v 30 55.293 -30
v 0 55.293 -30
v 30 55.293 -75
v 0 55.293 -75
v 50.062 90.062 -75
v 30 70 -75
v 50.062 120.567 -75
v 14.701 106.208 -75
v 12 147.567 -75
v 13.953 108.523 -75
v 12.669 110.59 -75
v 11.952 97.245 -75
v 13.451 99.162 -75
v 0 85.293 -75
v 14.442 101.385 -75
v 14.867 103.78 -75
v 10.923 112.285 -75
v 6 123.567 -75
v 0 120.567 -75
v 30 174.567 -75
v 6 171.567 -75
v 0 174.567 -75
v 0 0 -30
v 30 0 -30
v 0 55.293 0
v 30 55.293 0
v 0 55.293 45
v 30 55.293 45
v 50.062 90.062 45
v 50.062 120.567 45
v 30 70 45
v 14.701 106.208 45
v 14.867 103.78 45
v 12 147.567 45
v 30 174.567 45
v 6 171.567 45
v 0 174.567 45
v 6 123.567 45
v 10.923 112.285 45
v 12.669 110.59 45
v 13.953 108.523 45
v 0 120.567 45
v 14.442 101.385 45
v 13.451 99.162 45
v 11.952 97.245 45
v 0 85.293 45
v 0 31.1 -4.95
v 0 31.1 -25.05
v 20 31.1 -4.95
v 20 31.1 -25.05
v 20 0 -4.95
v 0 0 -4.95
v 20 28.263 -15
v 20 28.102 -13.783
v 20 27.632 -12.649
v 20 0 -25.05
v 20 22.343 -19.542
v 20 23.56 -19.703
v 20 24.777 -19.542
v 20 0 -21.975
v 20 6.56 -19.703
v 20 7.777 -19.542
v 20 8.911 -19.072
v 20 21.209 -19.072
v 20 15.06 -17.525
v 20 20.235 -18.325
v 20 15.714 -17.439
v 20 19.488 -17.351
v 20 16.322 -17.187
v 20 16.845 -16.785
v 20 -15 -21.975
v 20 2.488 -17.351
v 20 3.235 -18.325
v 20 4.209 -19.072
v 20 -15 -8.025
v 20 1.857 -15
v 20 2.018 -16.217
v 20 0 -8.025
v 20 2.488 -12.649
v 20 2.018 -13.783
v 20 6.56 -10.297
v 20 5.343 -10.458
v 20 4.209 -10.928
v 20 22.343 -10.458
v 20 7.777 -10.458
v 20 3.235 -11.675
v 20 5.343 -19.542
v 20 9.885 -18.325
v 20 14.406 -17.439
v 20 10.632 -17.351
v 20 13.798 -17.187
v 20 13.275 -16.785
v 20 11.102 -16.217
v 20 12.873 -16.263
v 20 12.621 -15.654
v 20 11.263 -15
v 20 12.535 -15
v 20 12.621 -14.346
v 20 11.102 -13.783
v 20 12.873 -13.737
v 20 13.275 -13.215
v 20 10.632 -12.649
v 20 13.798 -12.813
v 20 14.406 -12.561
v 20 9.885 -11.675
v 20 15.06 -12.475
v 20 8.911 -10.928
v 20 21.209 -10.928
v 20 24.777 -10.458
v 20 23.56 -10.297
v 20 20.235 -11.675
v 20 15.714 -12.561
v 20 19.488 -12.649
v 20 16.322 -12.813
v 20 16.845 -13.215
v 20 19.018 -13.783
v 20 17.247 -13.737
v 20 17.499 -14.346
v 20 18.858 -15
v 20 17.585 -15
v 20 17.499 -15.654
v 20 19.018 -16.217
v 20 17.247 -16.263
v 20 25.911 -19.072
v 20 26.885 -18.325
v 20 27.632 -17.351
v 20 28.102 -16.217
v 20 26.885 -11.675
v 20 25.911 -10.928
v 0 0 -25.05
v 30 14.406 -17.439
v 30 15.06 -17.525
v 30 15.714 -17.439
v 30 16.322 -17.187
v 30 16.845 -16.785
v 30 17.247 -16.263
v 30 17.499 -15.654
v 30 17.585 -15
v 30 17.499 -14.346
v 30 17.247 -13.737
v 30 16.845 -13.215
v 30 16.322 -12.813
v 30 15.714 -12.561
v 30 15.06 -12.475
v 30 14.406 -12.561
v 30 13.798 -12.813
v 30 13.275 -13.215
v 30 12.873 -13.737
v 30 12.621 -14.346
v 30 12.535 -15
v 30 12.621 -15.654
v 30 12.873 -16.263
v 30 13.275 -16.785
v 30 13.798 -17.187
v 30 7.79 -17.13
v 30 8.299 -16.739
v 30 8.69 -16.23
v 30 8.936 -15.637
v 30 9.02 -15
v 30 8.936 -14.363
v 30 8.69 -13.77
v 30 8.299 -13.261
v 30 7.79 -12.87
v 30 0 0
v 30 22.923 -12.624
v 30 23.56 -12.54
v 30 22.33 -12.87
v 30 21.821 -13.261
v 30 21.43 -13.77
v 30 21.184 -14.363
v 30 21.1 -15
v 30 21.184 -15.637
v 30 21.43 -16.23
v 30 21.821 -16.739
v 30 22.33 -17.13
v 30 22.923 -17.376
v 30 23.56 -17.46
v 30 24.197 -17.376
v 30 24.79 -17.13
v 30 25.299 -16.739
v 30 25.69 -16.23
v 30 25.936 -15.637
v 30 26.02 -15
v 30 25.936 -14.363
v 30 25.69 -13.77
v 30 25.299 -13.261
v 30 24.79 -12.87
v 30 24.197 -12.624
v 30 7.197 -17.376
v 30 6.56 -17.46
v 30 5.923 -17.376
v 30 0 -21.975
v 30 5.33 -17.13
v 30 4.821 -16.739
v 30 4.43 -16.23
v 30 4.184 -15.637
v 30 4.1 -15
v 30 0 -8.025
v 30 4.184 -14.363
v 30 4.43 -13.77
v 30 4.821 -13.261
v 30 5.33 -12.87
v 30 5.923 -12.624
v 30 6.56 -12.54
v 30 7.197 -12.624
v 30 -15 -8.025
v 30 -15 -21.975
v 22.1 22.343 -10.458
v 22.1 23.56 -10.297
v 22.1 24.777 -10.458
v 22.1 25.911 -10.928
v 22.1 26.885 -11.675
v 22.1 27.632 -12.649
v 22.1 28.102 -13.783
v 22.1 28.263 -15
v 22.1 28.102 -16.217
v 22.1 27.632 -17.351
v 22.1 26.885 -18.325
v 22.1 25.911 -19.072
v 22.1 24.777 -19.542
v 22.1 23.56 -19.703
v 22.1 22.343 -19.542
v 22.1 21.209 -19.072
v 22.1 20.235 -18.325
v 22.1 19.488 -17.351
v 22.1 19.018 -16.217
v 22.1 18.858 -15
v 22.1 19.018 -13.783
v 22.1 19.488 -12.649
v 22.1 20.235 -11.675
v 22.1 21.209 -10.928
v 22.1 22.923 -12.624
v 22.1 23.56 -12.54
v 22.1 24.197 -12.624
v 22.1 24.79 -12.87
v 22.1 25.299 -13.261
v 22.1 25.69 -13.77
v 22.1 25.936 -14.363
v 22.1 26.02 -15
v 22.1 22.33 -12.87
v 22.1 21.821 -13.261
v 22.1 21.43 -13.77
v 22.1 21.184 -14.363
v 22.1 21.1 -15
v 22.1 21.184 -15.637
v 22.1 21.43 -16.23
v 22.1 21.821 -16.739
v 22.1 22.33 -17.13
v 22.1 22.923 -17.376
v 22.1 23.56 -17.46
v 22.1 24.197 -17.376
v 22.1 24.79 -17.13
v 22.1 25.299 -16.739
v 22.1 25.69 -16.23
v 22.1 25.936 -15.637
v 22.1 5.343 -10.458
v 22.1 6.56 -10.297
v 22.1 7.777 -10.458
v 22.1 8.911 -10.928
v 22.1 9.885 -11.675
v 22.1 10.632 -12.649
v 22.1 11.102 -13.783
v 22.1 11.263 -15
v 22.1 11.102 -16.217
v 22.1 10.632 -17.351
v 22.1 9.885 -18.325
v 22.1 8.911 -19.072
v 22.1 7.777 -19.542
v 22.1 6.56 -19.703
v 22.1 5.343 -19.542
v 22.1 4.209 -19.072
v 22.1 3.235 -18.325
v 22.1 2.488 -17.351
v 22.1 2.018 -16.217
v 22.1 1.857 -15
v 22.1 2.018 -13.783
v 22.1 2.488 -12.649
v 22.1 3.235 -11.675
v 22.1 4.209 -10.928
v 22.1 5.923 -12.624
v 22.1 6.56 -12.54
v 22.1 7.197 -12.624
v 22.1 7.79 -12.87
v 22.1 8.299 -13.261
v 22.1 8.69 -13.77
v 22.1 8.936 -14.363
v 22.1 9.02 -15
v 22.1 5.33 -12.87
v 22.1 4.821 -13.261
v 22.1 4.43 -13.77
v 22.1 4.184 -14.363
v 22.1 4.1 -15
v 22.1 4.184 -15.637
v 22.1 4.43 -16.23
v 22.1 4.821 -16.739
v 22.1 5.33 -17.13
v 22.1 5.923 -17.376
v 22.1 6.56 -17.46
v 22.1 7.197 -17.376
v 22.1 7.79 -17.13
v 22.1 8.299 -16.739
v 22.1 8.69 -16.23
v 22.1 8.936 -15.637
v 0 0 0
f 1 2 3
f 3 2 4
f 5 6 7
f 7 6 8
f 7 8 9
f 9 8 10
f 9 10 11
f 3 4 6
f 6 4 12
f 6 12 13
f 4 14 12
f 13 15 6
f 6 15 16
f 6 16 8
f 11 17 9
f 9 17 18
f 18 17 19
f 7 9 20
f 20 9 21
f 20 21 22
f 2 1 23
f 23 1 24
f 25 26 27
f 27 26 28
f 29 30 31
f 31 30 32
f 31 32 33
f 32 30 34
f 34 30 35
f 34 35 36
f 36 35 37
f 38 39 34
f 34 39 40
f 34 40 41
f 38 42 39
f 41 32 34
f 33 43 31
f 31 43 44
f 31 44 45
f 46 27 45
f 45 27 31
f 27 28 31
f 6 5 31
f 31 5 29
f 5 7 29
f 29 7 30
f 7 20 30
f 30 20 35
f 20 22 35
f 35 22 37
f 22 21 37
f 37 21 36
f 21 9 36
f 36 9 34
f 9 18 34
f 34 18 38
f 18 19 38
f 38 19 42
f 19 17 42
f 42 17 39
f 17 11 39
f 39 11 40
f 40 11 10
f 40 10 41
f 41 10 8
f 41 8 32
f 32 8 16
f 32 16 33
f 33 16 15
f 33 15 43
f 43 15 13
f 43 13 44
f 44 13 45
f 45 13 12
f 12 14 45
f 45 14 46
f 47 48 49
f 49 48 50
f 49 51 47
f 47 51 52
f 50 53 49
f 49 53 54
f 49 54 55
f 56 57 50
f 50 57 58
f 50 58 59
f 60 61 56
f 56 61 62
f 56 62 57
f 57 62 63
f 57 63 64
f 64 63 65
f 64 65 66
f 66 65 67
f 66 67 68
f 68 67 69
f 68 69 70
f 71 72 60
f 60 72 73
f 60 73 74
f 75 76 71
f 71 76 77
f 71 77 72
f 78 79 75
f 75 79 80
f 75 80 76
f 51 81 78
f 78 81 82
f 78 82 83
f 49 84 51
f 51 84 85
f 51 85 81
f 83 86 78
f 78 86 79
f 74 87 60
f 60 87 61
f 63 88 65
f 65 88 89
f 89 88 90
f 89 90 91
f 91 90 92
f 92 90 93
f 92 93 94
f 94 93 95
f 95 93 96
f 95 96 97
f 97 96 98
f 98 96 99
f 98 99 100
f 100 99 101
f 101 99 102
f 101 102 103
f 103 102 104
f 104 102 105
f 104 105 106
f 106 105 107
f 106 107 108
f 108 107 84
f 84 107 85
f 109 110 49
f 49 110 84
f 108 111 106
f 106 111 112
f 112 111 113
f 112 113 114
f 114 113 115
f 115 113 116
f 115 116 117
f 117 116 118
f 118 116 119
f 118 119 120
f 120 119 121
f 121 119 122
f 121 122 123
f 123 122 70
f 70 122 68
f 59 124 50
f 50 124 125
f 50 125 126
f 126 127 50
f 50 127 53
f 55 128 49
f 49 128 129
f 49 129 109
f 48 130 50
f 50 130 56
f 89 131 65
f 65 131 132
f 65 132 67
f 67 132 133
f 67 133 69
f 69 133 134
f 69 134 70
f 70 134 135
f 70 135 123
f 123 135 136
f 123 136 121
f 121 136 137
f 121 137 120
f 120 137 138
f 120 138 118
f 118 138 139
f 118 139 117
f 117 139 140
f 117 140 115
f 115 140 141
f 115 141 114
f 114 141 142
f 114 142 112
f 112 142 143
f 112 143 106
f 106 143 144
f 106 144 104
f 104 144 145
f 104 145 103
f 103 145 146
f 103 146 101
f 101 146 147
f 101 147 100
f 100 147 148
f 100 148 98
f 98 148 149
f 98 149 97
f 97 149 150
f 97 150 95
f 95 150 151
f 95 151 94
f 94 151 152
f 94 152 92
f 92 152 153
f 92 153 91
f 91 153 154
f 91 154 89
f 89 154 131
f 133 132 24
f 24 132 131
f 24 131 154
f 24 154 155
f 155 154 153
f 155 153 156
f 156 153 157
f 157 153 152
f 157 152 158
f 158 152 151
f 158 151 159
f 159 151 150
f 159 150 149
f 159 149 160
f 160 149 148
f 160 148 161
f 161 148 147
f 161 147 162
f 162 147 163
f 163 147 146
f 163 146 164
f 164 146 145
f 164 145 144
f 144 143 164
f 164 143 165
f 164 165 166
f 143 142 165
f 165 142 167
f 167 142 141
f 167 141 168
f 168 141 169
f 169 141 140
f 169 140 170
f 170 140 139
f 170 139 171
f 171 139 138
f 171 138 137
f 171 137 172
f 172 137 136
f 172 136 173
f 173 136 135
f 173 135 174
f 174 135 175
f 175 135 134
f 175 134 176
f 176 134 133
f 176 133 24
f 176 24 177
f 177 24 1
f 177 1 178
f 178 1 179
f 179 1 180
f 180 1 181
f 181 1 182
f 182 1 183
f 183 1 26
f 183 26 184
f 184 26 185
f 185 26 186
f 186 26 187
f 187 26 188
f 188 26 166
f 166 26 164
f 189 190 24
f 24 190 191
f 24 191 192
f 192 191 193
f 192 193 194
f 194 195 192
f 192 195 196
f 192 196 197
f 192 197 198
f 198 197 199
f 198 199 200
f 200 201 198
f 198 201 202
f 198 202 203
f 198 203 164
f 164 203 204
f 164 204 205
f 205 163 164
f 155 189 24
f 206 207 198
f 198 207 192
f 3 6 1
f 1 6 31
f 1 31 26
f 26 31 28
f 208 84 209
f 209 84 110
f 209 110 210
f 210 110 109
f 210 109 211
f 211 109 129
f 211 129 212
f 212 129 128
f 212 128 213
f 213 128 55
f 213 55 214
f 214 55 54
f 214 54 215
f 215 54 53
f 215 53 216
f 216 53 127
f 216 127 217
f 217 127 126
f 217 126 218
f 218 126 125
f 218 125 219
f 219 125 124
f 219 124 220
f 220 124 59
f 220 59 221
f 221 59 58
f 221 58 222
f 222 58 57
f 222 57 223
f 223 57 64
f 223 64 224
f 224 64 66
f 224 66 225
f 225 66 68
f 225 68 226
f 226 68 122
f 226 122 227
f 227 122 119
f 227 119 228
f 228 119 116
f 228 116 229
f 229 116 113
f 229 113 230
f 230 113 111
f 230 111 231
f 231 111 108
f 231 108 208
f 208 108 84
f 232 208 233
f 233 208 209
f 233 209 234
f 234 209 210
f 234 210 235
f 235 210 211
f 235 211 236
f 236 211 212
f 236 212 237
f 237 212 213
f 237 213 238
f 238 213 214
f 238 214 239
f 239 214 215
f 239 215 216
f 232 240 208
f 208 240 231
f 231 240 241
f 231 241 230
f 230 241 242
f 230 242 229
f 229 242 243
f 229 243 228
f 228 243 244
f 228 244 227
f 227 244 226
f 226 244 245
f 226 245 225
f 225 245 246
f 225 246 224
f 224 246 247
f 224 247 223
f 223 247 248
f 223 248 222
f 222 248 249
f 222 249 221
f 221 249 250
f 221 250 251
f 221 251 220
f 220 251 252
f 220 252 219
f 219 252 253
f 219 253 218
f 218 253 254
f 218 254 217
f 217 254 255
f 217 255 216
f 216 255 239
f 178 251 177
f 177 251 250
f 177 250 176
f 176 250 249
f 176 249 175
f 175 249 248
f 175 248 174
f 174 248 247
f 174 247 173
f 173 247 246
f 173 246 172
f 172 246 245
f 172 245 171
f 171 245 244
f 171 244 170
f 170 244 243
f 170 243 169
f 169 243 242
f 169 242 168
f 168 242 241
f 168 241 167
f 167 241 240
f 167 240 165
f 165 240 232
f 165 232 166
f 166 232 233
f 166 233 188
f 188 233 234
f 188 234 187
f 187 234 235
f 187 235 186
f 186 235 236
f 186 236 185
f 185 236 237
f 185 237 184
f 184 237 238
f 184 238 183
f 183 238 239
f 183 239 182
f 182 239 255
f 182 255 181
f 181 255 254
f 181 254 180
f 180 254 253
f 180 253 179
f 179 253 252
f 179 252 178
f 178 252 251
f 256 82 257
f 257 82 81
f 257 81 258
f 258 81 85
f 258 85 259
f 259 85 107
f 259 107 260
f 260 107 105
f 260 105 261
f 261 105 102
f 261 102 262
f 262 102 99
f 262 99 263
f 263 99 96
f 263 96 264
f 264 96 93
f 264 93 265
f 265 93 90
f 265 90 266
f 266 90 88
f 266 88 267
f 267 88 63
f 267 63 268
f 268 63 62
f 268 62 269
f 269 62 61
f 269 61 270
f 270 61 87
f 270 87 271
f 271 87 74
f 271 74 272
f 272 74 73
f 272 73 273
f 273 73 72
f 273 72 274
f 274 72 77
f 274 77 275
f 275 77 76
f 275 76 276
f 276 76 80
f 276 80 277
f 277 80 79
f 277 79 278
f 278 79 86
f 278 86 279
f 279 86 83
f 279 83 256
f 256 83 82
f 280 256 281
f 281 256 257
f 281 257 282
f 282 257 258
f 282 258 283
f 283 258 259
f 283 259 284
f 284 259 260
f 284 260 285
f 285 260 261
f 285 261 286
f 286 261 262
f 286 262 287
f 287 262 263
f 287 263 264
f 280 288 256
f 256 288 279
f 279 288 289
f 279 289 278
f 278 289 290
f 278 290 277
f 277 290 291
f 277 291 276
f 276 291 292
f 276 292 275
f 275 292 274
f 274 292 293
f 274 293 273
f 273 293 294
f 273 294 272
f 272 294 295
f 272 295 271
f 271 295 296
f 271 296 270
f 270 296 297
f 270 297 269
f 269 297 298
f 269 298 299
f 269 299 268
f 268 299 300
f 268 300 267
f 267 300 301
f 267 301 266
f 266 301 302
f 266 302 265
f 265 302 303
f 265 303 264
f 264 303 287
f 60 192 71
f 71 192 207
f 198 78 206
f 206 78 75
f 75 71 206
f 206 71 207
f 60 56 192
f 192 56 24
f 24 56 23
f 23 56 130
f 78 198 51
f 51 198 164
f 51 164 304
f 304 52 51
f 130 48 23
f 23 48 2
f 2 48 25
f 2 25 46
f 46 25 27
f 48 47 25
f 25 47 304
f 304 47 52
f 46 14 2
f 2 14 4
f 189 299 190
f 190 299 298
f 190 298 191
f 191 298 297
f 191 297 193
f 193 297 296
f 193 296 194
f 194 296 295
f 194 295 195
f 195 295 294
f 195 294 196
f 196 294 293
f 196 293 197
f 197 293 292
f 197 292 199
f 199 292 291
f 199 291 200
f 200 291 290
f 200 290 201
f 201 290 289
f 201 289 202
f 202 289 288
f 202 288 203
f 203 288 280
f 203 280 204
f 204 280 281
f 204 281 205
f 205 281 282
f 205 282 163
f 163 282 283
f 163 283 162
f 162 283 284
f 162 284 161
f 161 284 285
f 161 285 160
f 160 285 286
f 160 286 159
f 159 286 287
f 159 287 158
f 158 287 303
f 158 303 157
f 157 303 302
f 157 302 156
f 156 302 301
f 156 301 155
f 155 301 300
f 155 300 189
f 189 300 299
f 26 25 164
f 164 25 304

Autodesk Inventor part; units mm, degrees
ref_plane "YZ Plane" through (0, 0, 0) normal (1, 0, 0) x (0, 1, 0)
ref_plane "XZ Plane" through (0, 0, 0) normal (0, 1, 0) x (-1, 0, 0)
sketch "Sketch1" plane through (0, 0, 0) normal (0, 0, 1) x (1, 0, 0)
  line L0 (0, 0) -> (25, 0)
  line L1 (25, 0) -> (25, 40)
  line L2 (25, 40) -> (0, 40)
  line L3 (0, 40) -> (0, 0)
  dimension "d1" = 25
  dimension "d2" = 40
  dimension "d3" = 25
extrude "Extrusion1" add sketch "Sketch1" against normal blind 30
sketch "Sketch2" plane through (25, 0, 0) normal (1, 0, 0) x (0, 0, -1)
  line L0 (0, 0) -> (30, 0) projected
  circle A0 centre (15, 6.56) radius 2.46
extrude "Extrusion2" cut sketch "Sketch2" against normal blind 30
sketch "Sketch3" plane through (0, 0, 0) normal (-1, 0, 0) x (0, 0, 1)
  line L0 (0, 0) -> (-30, 0) projected
  line L1 (-25.05, 0) -> (-4.95, 0)
  line L2 (-4.95, 0) -> (-4.95, 33.12)
  line L3 (-4.95, 33.12) -> (-25.05, 33.12)
  line L4 (-25.05, 33.12) -> (-25.05, 0)
  dimension "d11" = 20.1
extrude "Extrusion3" cut sketch "Sketch3" against normal blind 20
sketch "Sketch4" plane through (0, 0, 0) normal (0, -1, 0) x (1, 0, 0)
  line L0 (20, -4.95) -> (20, -25.05) projected
  line L1 (20, -15) -> (25, -15)
  line L2 (25, 0) -> (25, -30) projected
  line L3 (20, -8.025) -> (25, -8.025)
  line L4 (25, -8.025) -> (25, -21.975)
  line L5 (25, -21.975) -> (20, -21.975)
  line L6 (20, -21.975) -> (20, -8.025)
  line L7 (20, -8.025) -> (25, -21.975) construction
  line L8 (25, -8.025) -> (20, -21.975) construction
  line L9 (25, -12.54) -> (25, -17.46) projected
  point P0 (0, 0)
  point P1 (22.5, -15)
  dimension "d14" = 13.95
extrude "Extrusion4" add sketch "Sketch4" along normal blind 15
sketch "Sketch5" plane through (20, 0, 0) normal (-1, 0, 0) x (0, 0, 1)
  circle A0 centre (-15, 6.56) radius 2.46 projected
  circle A1 centre (-15, 6.56) radius 4.7025
  circle A2 centre (-15, 6.56) radius 2.46 projected
  circle A3 centre (-15, 6.56) radius 2.46
  point P0 (0, 0)
  dimension "d17" = 9.405
extrude "Extrusion5" cut sketch "Sketch5" against normal blind 2.1
sketch "Sketch6" plane through (25, 0, 0) normal (1, 0, 0) x (0, 0, -1)
  circle A0 centre (15, 6.56) radius 4.7025 projected
  line L0 (15, 6.56) -> (15, 23.56)
  circle A1 centre (15, 23.56) radius 2.46
  point P0 (0, 0)
  dimension "d20" = 17
  dimension "d21" = 4.92
extrude "Extrusion6" cut sketch "Sketch6" against normal blind 10 contours A1
sketch "Sketch7" plane through (20, 0, 0) normal (-1, 0, 0) x (0, 0, 1)
  circle A0 centre (-15, 23.56) radius 2.46 projected
  circle A1 centre (-15, 23.56) radius 4.7025
  point P0 (0, 0)
  dimension "d24" = 9.405
extrude "Extrusion7" cut sketch "Sketch7" against normal blind 2.1
sketch "Sketch9" plane through (25, 0, 0) normal (1, 0, 0) x (0, 0, -1)
  circle A0 centre (15, 6.56) radius 2.46 projected
  circle A1 centre (15, 6.56) radius 2.46
  circle A2 centre (15, 23.56) radius 2.46 projected
  circle A3 centre (15, 23.56) radius 2.46
  line L0 (30, 40) -> (30, 0) projected
  line L1 (30, 0) -> (30, 40)
  line L2 (30, 40) -> (0, 40)
  line L3 (0, 40) -> (0, 0)
  line L4 (0, 0) -> (8.025, 0) projected
  line L5 (21.975, 0) -> (21.975, -15)
  line L6 (21.975, -15) -> (8.025, -15)
  line L7 (8.025, -15) -> (8.025, 0)
  line L8 (0, 0) -> (8.025, 0)
  line L9 (21.975, 0) -> (30, 0)
extrude "Extrusion8" add sketch "Sketch9" along normal blind 5
sketch "Sketch10" plane through (0, 40, 0) normal (0, 1, 0) x (1, 0, 0)
  line L0 (0, 30) -> (30, 30) projected
  line L1 (30, 0) -> (0, 0) projected
  line L2 (0, 30) -> (30, 30)
  line L3 (30, 30) -> (30, 0)
  line L4 (30, 0) -> (0, 0)
  line L5 (0, 0) -> (0, 30)
extrude "Extrusion9" add sketch "Sketch10" along normal blind 30
sketch "Sketch12" plane through (30, 0, 0) normal (1, 0, 0) x (0, 0, -1)
  circle A0 centre (15, 6.56) radius 2.46 projected
  line L0 (15, 6.56) -> (15, 15.06)
  circle A1 centre (15, 15.06) radius 2.525
  point P0 (0, 0)
  dimension "d31" = 8.5
  dimension "d33" = 5.05
extrude "Extrusion10" cut sketch "Sketch12" against normal blind 30 contours A1
sketch "Sketch15" plane through (0, 0, -25.05) normal (-1, 0, 0) x (0, 0, 1)
  line L0 (0, 33.12) -> (20.1, 33.12) projected
  line L1 (20.1, 33.12) -> (20.1, 0) projected
  line L2 (0, 33.12) -> (20.1, 33.12)
  line L3 (20.1, 33.12) -> (20.1, 31.1)
  line L4 (20.1, 31.1) -> (0, 31.1)
  line L5 (0, 31.1) -> (0, 33.12)
  point P0 (25.05, 0)
  dimension "d57" = 2.02
extrude "Extrusion13" add sketch "Sketch15" against normal blind 20
sketch "Sketch17" plane through (0, 0, 0) normal (0, 0, 1) x (1, 0, 0)
  line L0 (0, 70) -> (30, 70) projected
  line L1 (30, 70) -> (50.0622, 90.0622)
  line L2 (30, 70) -> (80, 70) construction
  line L3 (11.9522, 97.2454) -> (0, 85.2932)
  line L4 (0, 70) -> (0, 85.2932)
  line L5 (0, 70) -> (0, 0) projected
  line L6 (0, 70) -> (30, 70)
  line L7 (10.923, 112.2849) -> (0, 120.567)
  line L8 (50.0622, 105.3553) -> (50.0622, 120.567)
  line L9 (50.0622, 105.3553) -> (50.0622, 90.0622)
  arc A0 (11.9522, 97.2454) -> (10.923, 112.2849) centre (4.8811, 104.3165) ccw
  line L10 (0, 174.567) -> (30, 174.567)
  line L11 (30, 174.567) -> (50.0622, 120.567)
  line L12 (6, 171.567) -> (0, 174.567)
  line L13 (6, 123.567) -> (0, 120.567)
  line L14 (6, 123.567) -> (12, 147.567)
  line L15 (6, 171.567) -> (12, 147.567)
  dimension "d61" = 45
  dimension "d62" = 32.0271
  dimension "d72" = 10
extrude "Extrusion14" add sketch "Sketch17" against normal blind 30
sketch "Sketch24" plane through (0, 0, 0) normal (0, 0, 1) x (1, 0, 0)
  line L0 (30, 70) -> (50.0622, 90.0622) projected
  line L1 (30, 70) -> (50.0622, 90.0622)
  line L2 (50.0622, 90.0622) -> (50.0622, 120.567) projected
  line L3 (50.0622, 90.0622) -> (50.0622, 120.567)
  line L4 (30, 174.567) -> (50.0622, 120.567) projected
  line L5 (50.0622, 120.567) -> (30, 174.567)
  line L6 (30, 174.567) -> (0, 174.567) projected
  line L7 (30, 174.567) -> (0, 174.567)
  line L8 (0, 174.567) -> (6, 171.567) projected
  line L9 (0, 174.567) -> (6, 171.567)
  line L10 (12, 147.567) -> (6, 171.567) projected
  line L11 (6, 171.567) -> (12, 147.567)
  line L12 (12, 147.567) -> (6, 123.567) projected
  line L13 (12, 147.567) -> (6, 123.567)
  line L14 (6, 123.567) -> (0, 120.567) projected
  line L15 (6, 123.567) -> (0, 120.567)
  line L16 (0, 120.567) -> (10.923, 112.2849) projected
  line L17 (0, 120.567) -> (10.923, 112.2849)
  line L18 (0, 85.2932) -> (11.9522, 97.2454) projected
  line L19 (11.9522, 97.2454) -> (0, 85.2932)
  line L20 (0, 85.2932) -> (0, 55.2932)
  line L21 (0, 0) -> (0, 85.2932) projected
  line L22 (0, 55.2932) -> (30, 55.2932)
  line L23 (30, 0) -> (30, 70) projected
  line L24 (30, 55.2932) -> (30, 70)
  arc A0 (11.9522, 97.2454) -> (10.923, 112.2849) centre (4.8811, 104.3165) ccw
  dimension "d106" = 30
extrude "Extrusion15" add sketch "Sketch24" along normal blind 45
ref_plane "Work Plane1" through (0, 0, -15) normal (0, 0, 1) x (1, 0, 0)
mirror "Mirror1" about plane through (0, 0, -15) normal (0, 0, 1) of "Extrusion15"
properties part number "rec_c_48mm_x_120mm"
